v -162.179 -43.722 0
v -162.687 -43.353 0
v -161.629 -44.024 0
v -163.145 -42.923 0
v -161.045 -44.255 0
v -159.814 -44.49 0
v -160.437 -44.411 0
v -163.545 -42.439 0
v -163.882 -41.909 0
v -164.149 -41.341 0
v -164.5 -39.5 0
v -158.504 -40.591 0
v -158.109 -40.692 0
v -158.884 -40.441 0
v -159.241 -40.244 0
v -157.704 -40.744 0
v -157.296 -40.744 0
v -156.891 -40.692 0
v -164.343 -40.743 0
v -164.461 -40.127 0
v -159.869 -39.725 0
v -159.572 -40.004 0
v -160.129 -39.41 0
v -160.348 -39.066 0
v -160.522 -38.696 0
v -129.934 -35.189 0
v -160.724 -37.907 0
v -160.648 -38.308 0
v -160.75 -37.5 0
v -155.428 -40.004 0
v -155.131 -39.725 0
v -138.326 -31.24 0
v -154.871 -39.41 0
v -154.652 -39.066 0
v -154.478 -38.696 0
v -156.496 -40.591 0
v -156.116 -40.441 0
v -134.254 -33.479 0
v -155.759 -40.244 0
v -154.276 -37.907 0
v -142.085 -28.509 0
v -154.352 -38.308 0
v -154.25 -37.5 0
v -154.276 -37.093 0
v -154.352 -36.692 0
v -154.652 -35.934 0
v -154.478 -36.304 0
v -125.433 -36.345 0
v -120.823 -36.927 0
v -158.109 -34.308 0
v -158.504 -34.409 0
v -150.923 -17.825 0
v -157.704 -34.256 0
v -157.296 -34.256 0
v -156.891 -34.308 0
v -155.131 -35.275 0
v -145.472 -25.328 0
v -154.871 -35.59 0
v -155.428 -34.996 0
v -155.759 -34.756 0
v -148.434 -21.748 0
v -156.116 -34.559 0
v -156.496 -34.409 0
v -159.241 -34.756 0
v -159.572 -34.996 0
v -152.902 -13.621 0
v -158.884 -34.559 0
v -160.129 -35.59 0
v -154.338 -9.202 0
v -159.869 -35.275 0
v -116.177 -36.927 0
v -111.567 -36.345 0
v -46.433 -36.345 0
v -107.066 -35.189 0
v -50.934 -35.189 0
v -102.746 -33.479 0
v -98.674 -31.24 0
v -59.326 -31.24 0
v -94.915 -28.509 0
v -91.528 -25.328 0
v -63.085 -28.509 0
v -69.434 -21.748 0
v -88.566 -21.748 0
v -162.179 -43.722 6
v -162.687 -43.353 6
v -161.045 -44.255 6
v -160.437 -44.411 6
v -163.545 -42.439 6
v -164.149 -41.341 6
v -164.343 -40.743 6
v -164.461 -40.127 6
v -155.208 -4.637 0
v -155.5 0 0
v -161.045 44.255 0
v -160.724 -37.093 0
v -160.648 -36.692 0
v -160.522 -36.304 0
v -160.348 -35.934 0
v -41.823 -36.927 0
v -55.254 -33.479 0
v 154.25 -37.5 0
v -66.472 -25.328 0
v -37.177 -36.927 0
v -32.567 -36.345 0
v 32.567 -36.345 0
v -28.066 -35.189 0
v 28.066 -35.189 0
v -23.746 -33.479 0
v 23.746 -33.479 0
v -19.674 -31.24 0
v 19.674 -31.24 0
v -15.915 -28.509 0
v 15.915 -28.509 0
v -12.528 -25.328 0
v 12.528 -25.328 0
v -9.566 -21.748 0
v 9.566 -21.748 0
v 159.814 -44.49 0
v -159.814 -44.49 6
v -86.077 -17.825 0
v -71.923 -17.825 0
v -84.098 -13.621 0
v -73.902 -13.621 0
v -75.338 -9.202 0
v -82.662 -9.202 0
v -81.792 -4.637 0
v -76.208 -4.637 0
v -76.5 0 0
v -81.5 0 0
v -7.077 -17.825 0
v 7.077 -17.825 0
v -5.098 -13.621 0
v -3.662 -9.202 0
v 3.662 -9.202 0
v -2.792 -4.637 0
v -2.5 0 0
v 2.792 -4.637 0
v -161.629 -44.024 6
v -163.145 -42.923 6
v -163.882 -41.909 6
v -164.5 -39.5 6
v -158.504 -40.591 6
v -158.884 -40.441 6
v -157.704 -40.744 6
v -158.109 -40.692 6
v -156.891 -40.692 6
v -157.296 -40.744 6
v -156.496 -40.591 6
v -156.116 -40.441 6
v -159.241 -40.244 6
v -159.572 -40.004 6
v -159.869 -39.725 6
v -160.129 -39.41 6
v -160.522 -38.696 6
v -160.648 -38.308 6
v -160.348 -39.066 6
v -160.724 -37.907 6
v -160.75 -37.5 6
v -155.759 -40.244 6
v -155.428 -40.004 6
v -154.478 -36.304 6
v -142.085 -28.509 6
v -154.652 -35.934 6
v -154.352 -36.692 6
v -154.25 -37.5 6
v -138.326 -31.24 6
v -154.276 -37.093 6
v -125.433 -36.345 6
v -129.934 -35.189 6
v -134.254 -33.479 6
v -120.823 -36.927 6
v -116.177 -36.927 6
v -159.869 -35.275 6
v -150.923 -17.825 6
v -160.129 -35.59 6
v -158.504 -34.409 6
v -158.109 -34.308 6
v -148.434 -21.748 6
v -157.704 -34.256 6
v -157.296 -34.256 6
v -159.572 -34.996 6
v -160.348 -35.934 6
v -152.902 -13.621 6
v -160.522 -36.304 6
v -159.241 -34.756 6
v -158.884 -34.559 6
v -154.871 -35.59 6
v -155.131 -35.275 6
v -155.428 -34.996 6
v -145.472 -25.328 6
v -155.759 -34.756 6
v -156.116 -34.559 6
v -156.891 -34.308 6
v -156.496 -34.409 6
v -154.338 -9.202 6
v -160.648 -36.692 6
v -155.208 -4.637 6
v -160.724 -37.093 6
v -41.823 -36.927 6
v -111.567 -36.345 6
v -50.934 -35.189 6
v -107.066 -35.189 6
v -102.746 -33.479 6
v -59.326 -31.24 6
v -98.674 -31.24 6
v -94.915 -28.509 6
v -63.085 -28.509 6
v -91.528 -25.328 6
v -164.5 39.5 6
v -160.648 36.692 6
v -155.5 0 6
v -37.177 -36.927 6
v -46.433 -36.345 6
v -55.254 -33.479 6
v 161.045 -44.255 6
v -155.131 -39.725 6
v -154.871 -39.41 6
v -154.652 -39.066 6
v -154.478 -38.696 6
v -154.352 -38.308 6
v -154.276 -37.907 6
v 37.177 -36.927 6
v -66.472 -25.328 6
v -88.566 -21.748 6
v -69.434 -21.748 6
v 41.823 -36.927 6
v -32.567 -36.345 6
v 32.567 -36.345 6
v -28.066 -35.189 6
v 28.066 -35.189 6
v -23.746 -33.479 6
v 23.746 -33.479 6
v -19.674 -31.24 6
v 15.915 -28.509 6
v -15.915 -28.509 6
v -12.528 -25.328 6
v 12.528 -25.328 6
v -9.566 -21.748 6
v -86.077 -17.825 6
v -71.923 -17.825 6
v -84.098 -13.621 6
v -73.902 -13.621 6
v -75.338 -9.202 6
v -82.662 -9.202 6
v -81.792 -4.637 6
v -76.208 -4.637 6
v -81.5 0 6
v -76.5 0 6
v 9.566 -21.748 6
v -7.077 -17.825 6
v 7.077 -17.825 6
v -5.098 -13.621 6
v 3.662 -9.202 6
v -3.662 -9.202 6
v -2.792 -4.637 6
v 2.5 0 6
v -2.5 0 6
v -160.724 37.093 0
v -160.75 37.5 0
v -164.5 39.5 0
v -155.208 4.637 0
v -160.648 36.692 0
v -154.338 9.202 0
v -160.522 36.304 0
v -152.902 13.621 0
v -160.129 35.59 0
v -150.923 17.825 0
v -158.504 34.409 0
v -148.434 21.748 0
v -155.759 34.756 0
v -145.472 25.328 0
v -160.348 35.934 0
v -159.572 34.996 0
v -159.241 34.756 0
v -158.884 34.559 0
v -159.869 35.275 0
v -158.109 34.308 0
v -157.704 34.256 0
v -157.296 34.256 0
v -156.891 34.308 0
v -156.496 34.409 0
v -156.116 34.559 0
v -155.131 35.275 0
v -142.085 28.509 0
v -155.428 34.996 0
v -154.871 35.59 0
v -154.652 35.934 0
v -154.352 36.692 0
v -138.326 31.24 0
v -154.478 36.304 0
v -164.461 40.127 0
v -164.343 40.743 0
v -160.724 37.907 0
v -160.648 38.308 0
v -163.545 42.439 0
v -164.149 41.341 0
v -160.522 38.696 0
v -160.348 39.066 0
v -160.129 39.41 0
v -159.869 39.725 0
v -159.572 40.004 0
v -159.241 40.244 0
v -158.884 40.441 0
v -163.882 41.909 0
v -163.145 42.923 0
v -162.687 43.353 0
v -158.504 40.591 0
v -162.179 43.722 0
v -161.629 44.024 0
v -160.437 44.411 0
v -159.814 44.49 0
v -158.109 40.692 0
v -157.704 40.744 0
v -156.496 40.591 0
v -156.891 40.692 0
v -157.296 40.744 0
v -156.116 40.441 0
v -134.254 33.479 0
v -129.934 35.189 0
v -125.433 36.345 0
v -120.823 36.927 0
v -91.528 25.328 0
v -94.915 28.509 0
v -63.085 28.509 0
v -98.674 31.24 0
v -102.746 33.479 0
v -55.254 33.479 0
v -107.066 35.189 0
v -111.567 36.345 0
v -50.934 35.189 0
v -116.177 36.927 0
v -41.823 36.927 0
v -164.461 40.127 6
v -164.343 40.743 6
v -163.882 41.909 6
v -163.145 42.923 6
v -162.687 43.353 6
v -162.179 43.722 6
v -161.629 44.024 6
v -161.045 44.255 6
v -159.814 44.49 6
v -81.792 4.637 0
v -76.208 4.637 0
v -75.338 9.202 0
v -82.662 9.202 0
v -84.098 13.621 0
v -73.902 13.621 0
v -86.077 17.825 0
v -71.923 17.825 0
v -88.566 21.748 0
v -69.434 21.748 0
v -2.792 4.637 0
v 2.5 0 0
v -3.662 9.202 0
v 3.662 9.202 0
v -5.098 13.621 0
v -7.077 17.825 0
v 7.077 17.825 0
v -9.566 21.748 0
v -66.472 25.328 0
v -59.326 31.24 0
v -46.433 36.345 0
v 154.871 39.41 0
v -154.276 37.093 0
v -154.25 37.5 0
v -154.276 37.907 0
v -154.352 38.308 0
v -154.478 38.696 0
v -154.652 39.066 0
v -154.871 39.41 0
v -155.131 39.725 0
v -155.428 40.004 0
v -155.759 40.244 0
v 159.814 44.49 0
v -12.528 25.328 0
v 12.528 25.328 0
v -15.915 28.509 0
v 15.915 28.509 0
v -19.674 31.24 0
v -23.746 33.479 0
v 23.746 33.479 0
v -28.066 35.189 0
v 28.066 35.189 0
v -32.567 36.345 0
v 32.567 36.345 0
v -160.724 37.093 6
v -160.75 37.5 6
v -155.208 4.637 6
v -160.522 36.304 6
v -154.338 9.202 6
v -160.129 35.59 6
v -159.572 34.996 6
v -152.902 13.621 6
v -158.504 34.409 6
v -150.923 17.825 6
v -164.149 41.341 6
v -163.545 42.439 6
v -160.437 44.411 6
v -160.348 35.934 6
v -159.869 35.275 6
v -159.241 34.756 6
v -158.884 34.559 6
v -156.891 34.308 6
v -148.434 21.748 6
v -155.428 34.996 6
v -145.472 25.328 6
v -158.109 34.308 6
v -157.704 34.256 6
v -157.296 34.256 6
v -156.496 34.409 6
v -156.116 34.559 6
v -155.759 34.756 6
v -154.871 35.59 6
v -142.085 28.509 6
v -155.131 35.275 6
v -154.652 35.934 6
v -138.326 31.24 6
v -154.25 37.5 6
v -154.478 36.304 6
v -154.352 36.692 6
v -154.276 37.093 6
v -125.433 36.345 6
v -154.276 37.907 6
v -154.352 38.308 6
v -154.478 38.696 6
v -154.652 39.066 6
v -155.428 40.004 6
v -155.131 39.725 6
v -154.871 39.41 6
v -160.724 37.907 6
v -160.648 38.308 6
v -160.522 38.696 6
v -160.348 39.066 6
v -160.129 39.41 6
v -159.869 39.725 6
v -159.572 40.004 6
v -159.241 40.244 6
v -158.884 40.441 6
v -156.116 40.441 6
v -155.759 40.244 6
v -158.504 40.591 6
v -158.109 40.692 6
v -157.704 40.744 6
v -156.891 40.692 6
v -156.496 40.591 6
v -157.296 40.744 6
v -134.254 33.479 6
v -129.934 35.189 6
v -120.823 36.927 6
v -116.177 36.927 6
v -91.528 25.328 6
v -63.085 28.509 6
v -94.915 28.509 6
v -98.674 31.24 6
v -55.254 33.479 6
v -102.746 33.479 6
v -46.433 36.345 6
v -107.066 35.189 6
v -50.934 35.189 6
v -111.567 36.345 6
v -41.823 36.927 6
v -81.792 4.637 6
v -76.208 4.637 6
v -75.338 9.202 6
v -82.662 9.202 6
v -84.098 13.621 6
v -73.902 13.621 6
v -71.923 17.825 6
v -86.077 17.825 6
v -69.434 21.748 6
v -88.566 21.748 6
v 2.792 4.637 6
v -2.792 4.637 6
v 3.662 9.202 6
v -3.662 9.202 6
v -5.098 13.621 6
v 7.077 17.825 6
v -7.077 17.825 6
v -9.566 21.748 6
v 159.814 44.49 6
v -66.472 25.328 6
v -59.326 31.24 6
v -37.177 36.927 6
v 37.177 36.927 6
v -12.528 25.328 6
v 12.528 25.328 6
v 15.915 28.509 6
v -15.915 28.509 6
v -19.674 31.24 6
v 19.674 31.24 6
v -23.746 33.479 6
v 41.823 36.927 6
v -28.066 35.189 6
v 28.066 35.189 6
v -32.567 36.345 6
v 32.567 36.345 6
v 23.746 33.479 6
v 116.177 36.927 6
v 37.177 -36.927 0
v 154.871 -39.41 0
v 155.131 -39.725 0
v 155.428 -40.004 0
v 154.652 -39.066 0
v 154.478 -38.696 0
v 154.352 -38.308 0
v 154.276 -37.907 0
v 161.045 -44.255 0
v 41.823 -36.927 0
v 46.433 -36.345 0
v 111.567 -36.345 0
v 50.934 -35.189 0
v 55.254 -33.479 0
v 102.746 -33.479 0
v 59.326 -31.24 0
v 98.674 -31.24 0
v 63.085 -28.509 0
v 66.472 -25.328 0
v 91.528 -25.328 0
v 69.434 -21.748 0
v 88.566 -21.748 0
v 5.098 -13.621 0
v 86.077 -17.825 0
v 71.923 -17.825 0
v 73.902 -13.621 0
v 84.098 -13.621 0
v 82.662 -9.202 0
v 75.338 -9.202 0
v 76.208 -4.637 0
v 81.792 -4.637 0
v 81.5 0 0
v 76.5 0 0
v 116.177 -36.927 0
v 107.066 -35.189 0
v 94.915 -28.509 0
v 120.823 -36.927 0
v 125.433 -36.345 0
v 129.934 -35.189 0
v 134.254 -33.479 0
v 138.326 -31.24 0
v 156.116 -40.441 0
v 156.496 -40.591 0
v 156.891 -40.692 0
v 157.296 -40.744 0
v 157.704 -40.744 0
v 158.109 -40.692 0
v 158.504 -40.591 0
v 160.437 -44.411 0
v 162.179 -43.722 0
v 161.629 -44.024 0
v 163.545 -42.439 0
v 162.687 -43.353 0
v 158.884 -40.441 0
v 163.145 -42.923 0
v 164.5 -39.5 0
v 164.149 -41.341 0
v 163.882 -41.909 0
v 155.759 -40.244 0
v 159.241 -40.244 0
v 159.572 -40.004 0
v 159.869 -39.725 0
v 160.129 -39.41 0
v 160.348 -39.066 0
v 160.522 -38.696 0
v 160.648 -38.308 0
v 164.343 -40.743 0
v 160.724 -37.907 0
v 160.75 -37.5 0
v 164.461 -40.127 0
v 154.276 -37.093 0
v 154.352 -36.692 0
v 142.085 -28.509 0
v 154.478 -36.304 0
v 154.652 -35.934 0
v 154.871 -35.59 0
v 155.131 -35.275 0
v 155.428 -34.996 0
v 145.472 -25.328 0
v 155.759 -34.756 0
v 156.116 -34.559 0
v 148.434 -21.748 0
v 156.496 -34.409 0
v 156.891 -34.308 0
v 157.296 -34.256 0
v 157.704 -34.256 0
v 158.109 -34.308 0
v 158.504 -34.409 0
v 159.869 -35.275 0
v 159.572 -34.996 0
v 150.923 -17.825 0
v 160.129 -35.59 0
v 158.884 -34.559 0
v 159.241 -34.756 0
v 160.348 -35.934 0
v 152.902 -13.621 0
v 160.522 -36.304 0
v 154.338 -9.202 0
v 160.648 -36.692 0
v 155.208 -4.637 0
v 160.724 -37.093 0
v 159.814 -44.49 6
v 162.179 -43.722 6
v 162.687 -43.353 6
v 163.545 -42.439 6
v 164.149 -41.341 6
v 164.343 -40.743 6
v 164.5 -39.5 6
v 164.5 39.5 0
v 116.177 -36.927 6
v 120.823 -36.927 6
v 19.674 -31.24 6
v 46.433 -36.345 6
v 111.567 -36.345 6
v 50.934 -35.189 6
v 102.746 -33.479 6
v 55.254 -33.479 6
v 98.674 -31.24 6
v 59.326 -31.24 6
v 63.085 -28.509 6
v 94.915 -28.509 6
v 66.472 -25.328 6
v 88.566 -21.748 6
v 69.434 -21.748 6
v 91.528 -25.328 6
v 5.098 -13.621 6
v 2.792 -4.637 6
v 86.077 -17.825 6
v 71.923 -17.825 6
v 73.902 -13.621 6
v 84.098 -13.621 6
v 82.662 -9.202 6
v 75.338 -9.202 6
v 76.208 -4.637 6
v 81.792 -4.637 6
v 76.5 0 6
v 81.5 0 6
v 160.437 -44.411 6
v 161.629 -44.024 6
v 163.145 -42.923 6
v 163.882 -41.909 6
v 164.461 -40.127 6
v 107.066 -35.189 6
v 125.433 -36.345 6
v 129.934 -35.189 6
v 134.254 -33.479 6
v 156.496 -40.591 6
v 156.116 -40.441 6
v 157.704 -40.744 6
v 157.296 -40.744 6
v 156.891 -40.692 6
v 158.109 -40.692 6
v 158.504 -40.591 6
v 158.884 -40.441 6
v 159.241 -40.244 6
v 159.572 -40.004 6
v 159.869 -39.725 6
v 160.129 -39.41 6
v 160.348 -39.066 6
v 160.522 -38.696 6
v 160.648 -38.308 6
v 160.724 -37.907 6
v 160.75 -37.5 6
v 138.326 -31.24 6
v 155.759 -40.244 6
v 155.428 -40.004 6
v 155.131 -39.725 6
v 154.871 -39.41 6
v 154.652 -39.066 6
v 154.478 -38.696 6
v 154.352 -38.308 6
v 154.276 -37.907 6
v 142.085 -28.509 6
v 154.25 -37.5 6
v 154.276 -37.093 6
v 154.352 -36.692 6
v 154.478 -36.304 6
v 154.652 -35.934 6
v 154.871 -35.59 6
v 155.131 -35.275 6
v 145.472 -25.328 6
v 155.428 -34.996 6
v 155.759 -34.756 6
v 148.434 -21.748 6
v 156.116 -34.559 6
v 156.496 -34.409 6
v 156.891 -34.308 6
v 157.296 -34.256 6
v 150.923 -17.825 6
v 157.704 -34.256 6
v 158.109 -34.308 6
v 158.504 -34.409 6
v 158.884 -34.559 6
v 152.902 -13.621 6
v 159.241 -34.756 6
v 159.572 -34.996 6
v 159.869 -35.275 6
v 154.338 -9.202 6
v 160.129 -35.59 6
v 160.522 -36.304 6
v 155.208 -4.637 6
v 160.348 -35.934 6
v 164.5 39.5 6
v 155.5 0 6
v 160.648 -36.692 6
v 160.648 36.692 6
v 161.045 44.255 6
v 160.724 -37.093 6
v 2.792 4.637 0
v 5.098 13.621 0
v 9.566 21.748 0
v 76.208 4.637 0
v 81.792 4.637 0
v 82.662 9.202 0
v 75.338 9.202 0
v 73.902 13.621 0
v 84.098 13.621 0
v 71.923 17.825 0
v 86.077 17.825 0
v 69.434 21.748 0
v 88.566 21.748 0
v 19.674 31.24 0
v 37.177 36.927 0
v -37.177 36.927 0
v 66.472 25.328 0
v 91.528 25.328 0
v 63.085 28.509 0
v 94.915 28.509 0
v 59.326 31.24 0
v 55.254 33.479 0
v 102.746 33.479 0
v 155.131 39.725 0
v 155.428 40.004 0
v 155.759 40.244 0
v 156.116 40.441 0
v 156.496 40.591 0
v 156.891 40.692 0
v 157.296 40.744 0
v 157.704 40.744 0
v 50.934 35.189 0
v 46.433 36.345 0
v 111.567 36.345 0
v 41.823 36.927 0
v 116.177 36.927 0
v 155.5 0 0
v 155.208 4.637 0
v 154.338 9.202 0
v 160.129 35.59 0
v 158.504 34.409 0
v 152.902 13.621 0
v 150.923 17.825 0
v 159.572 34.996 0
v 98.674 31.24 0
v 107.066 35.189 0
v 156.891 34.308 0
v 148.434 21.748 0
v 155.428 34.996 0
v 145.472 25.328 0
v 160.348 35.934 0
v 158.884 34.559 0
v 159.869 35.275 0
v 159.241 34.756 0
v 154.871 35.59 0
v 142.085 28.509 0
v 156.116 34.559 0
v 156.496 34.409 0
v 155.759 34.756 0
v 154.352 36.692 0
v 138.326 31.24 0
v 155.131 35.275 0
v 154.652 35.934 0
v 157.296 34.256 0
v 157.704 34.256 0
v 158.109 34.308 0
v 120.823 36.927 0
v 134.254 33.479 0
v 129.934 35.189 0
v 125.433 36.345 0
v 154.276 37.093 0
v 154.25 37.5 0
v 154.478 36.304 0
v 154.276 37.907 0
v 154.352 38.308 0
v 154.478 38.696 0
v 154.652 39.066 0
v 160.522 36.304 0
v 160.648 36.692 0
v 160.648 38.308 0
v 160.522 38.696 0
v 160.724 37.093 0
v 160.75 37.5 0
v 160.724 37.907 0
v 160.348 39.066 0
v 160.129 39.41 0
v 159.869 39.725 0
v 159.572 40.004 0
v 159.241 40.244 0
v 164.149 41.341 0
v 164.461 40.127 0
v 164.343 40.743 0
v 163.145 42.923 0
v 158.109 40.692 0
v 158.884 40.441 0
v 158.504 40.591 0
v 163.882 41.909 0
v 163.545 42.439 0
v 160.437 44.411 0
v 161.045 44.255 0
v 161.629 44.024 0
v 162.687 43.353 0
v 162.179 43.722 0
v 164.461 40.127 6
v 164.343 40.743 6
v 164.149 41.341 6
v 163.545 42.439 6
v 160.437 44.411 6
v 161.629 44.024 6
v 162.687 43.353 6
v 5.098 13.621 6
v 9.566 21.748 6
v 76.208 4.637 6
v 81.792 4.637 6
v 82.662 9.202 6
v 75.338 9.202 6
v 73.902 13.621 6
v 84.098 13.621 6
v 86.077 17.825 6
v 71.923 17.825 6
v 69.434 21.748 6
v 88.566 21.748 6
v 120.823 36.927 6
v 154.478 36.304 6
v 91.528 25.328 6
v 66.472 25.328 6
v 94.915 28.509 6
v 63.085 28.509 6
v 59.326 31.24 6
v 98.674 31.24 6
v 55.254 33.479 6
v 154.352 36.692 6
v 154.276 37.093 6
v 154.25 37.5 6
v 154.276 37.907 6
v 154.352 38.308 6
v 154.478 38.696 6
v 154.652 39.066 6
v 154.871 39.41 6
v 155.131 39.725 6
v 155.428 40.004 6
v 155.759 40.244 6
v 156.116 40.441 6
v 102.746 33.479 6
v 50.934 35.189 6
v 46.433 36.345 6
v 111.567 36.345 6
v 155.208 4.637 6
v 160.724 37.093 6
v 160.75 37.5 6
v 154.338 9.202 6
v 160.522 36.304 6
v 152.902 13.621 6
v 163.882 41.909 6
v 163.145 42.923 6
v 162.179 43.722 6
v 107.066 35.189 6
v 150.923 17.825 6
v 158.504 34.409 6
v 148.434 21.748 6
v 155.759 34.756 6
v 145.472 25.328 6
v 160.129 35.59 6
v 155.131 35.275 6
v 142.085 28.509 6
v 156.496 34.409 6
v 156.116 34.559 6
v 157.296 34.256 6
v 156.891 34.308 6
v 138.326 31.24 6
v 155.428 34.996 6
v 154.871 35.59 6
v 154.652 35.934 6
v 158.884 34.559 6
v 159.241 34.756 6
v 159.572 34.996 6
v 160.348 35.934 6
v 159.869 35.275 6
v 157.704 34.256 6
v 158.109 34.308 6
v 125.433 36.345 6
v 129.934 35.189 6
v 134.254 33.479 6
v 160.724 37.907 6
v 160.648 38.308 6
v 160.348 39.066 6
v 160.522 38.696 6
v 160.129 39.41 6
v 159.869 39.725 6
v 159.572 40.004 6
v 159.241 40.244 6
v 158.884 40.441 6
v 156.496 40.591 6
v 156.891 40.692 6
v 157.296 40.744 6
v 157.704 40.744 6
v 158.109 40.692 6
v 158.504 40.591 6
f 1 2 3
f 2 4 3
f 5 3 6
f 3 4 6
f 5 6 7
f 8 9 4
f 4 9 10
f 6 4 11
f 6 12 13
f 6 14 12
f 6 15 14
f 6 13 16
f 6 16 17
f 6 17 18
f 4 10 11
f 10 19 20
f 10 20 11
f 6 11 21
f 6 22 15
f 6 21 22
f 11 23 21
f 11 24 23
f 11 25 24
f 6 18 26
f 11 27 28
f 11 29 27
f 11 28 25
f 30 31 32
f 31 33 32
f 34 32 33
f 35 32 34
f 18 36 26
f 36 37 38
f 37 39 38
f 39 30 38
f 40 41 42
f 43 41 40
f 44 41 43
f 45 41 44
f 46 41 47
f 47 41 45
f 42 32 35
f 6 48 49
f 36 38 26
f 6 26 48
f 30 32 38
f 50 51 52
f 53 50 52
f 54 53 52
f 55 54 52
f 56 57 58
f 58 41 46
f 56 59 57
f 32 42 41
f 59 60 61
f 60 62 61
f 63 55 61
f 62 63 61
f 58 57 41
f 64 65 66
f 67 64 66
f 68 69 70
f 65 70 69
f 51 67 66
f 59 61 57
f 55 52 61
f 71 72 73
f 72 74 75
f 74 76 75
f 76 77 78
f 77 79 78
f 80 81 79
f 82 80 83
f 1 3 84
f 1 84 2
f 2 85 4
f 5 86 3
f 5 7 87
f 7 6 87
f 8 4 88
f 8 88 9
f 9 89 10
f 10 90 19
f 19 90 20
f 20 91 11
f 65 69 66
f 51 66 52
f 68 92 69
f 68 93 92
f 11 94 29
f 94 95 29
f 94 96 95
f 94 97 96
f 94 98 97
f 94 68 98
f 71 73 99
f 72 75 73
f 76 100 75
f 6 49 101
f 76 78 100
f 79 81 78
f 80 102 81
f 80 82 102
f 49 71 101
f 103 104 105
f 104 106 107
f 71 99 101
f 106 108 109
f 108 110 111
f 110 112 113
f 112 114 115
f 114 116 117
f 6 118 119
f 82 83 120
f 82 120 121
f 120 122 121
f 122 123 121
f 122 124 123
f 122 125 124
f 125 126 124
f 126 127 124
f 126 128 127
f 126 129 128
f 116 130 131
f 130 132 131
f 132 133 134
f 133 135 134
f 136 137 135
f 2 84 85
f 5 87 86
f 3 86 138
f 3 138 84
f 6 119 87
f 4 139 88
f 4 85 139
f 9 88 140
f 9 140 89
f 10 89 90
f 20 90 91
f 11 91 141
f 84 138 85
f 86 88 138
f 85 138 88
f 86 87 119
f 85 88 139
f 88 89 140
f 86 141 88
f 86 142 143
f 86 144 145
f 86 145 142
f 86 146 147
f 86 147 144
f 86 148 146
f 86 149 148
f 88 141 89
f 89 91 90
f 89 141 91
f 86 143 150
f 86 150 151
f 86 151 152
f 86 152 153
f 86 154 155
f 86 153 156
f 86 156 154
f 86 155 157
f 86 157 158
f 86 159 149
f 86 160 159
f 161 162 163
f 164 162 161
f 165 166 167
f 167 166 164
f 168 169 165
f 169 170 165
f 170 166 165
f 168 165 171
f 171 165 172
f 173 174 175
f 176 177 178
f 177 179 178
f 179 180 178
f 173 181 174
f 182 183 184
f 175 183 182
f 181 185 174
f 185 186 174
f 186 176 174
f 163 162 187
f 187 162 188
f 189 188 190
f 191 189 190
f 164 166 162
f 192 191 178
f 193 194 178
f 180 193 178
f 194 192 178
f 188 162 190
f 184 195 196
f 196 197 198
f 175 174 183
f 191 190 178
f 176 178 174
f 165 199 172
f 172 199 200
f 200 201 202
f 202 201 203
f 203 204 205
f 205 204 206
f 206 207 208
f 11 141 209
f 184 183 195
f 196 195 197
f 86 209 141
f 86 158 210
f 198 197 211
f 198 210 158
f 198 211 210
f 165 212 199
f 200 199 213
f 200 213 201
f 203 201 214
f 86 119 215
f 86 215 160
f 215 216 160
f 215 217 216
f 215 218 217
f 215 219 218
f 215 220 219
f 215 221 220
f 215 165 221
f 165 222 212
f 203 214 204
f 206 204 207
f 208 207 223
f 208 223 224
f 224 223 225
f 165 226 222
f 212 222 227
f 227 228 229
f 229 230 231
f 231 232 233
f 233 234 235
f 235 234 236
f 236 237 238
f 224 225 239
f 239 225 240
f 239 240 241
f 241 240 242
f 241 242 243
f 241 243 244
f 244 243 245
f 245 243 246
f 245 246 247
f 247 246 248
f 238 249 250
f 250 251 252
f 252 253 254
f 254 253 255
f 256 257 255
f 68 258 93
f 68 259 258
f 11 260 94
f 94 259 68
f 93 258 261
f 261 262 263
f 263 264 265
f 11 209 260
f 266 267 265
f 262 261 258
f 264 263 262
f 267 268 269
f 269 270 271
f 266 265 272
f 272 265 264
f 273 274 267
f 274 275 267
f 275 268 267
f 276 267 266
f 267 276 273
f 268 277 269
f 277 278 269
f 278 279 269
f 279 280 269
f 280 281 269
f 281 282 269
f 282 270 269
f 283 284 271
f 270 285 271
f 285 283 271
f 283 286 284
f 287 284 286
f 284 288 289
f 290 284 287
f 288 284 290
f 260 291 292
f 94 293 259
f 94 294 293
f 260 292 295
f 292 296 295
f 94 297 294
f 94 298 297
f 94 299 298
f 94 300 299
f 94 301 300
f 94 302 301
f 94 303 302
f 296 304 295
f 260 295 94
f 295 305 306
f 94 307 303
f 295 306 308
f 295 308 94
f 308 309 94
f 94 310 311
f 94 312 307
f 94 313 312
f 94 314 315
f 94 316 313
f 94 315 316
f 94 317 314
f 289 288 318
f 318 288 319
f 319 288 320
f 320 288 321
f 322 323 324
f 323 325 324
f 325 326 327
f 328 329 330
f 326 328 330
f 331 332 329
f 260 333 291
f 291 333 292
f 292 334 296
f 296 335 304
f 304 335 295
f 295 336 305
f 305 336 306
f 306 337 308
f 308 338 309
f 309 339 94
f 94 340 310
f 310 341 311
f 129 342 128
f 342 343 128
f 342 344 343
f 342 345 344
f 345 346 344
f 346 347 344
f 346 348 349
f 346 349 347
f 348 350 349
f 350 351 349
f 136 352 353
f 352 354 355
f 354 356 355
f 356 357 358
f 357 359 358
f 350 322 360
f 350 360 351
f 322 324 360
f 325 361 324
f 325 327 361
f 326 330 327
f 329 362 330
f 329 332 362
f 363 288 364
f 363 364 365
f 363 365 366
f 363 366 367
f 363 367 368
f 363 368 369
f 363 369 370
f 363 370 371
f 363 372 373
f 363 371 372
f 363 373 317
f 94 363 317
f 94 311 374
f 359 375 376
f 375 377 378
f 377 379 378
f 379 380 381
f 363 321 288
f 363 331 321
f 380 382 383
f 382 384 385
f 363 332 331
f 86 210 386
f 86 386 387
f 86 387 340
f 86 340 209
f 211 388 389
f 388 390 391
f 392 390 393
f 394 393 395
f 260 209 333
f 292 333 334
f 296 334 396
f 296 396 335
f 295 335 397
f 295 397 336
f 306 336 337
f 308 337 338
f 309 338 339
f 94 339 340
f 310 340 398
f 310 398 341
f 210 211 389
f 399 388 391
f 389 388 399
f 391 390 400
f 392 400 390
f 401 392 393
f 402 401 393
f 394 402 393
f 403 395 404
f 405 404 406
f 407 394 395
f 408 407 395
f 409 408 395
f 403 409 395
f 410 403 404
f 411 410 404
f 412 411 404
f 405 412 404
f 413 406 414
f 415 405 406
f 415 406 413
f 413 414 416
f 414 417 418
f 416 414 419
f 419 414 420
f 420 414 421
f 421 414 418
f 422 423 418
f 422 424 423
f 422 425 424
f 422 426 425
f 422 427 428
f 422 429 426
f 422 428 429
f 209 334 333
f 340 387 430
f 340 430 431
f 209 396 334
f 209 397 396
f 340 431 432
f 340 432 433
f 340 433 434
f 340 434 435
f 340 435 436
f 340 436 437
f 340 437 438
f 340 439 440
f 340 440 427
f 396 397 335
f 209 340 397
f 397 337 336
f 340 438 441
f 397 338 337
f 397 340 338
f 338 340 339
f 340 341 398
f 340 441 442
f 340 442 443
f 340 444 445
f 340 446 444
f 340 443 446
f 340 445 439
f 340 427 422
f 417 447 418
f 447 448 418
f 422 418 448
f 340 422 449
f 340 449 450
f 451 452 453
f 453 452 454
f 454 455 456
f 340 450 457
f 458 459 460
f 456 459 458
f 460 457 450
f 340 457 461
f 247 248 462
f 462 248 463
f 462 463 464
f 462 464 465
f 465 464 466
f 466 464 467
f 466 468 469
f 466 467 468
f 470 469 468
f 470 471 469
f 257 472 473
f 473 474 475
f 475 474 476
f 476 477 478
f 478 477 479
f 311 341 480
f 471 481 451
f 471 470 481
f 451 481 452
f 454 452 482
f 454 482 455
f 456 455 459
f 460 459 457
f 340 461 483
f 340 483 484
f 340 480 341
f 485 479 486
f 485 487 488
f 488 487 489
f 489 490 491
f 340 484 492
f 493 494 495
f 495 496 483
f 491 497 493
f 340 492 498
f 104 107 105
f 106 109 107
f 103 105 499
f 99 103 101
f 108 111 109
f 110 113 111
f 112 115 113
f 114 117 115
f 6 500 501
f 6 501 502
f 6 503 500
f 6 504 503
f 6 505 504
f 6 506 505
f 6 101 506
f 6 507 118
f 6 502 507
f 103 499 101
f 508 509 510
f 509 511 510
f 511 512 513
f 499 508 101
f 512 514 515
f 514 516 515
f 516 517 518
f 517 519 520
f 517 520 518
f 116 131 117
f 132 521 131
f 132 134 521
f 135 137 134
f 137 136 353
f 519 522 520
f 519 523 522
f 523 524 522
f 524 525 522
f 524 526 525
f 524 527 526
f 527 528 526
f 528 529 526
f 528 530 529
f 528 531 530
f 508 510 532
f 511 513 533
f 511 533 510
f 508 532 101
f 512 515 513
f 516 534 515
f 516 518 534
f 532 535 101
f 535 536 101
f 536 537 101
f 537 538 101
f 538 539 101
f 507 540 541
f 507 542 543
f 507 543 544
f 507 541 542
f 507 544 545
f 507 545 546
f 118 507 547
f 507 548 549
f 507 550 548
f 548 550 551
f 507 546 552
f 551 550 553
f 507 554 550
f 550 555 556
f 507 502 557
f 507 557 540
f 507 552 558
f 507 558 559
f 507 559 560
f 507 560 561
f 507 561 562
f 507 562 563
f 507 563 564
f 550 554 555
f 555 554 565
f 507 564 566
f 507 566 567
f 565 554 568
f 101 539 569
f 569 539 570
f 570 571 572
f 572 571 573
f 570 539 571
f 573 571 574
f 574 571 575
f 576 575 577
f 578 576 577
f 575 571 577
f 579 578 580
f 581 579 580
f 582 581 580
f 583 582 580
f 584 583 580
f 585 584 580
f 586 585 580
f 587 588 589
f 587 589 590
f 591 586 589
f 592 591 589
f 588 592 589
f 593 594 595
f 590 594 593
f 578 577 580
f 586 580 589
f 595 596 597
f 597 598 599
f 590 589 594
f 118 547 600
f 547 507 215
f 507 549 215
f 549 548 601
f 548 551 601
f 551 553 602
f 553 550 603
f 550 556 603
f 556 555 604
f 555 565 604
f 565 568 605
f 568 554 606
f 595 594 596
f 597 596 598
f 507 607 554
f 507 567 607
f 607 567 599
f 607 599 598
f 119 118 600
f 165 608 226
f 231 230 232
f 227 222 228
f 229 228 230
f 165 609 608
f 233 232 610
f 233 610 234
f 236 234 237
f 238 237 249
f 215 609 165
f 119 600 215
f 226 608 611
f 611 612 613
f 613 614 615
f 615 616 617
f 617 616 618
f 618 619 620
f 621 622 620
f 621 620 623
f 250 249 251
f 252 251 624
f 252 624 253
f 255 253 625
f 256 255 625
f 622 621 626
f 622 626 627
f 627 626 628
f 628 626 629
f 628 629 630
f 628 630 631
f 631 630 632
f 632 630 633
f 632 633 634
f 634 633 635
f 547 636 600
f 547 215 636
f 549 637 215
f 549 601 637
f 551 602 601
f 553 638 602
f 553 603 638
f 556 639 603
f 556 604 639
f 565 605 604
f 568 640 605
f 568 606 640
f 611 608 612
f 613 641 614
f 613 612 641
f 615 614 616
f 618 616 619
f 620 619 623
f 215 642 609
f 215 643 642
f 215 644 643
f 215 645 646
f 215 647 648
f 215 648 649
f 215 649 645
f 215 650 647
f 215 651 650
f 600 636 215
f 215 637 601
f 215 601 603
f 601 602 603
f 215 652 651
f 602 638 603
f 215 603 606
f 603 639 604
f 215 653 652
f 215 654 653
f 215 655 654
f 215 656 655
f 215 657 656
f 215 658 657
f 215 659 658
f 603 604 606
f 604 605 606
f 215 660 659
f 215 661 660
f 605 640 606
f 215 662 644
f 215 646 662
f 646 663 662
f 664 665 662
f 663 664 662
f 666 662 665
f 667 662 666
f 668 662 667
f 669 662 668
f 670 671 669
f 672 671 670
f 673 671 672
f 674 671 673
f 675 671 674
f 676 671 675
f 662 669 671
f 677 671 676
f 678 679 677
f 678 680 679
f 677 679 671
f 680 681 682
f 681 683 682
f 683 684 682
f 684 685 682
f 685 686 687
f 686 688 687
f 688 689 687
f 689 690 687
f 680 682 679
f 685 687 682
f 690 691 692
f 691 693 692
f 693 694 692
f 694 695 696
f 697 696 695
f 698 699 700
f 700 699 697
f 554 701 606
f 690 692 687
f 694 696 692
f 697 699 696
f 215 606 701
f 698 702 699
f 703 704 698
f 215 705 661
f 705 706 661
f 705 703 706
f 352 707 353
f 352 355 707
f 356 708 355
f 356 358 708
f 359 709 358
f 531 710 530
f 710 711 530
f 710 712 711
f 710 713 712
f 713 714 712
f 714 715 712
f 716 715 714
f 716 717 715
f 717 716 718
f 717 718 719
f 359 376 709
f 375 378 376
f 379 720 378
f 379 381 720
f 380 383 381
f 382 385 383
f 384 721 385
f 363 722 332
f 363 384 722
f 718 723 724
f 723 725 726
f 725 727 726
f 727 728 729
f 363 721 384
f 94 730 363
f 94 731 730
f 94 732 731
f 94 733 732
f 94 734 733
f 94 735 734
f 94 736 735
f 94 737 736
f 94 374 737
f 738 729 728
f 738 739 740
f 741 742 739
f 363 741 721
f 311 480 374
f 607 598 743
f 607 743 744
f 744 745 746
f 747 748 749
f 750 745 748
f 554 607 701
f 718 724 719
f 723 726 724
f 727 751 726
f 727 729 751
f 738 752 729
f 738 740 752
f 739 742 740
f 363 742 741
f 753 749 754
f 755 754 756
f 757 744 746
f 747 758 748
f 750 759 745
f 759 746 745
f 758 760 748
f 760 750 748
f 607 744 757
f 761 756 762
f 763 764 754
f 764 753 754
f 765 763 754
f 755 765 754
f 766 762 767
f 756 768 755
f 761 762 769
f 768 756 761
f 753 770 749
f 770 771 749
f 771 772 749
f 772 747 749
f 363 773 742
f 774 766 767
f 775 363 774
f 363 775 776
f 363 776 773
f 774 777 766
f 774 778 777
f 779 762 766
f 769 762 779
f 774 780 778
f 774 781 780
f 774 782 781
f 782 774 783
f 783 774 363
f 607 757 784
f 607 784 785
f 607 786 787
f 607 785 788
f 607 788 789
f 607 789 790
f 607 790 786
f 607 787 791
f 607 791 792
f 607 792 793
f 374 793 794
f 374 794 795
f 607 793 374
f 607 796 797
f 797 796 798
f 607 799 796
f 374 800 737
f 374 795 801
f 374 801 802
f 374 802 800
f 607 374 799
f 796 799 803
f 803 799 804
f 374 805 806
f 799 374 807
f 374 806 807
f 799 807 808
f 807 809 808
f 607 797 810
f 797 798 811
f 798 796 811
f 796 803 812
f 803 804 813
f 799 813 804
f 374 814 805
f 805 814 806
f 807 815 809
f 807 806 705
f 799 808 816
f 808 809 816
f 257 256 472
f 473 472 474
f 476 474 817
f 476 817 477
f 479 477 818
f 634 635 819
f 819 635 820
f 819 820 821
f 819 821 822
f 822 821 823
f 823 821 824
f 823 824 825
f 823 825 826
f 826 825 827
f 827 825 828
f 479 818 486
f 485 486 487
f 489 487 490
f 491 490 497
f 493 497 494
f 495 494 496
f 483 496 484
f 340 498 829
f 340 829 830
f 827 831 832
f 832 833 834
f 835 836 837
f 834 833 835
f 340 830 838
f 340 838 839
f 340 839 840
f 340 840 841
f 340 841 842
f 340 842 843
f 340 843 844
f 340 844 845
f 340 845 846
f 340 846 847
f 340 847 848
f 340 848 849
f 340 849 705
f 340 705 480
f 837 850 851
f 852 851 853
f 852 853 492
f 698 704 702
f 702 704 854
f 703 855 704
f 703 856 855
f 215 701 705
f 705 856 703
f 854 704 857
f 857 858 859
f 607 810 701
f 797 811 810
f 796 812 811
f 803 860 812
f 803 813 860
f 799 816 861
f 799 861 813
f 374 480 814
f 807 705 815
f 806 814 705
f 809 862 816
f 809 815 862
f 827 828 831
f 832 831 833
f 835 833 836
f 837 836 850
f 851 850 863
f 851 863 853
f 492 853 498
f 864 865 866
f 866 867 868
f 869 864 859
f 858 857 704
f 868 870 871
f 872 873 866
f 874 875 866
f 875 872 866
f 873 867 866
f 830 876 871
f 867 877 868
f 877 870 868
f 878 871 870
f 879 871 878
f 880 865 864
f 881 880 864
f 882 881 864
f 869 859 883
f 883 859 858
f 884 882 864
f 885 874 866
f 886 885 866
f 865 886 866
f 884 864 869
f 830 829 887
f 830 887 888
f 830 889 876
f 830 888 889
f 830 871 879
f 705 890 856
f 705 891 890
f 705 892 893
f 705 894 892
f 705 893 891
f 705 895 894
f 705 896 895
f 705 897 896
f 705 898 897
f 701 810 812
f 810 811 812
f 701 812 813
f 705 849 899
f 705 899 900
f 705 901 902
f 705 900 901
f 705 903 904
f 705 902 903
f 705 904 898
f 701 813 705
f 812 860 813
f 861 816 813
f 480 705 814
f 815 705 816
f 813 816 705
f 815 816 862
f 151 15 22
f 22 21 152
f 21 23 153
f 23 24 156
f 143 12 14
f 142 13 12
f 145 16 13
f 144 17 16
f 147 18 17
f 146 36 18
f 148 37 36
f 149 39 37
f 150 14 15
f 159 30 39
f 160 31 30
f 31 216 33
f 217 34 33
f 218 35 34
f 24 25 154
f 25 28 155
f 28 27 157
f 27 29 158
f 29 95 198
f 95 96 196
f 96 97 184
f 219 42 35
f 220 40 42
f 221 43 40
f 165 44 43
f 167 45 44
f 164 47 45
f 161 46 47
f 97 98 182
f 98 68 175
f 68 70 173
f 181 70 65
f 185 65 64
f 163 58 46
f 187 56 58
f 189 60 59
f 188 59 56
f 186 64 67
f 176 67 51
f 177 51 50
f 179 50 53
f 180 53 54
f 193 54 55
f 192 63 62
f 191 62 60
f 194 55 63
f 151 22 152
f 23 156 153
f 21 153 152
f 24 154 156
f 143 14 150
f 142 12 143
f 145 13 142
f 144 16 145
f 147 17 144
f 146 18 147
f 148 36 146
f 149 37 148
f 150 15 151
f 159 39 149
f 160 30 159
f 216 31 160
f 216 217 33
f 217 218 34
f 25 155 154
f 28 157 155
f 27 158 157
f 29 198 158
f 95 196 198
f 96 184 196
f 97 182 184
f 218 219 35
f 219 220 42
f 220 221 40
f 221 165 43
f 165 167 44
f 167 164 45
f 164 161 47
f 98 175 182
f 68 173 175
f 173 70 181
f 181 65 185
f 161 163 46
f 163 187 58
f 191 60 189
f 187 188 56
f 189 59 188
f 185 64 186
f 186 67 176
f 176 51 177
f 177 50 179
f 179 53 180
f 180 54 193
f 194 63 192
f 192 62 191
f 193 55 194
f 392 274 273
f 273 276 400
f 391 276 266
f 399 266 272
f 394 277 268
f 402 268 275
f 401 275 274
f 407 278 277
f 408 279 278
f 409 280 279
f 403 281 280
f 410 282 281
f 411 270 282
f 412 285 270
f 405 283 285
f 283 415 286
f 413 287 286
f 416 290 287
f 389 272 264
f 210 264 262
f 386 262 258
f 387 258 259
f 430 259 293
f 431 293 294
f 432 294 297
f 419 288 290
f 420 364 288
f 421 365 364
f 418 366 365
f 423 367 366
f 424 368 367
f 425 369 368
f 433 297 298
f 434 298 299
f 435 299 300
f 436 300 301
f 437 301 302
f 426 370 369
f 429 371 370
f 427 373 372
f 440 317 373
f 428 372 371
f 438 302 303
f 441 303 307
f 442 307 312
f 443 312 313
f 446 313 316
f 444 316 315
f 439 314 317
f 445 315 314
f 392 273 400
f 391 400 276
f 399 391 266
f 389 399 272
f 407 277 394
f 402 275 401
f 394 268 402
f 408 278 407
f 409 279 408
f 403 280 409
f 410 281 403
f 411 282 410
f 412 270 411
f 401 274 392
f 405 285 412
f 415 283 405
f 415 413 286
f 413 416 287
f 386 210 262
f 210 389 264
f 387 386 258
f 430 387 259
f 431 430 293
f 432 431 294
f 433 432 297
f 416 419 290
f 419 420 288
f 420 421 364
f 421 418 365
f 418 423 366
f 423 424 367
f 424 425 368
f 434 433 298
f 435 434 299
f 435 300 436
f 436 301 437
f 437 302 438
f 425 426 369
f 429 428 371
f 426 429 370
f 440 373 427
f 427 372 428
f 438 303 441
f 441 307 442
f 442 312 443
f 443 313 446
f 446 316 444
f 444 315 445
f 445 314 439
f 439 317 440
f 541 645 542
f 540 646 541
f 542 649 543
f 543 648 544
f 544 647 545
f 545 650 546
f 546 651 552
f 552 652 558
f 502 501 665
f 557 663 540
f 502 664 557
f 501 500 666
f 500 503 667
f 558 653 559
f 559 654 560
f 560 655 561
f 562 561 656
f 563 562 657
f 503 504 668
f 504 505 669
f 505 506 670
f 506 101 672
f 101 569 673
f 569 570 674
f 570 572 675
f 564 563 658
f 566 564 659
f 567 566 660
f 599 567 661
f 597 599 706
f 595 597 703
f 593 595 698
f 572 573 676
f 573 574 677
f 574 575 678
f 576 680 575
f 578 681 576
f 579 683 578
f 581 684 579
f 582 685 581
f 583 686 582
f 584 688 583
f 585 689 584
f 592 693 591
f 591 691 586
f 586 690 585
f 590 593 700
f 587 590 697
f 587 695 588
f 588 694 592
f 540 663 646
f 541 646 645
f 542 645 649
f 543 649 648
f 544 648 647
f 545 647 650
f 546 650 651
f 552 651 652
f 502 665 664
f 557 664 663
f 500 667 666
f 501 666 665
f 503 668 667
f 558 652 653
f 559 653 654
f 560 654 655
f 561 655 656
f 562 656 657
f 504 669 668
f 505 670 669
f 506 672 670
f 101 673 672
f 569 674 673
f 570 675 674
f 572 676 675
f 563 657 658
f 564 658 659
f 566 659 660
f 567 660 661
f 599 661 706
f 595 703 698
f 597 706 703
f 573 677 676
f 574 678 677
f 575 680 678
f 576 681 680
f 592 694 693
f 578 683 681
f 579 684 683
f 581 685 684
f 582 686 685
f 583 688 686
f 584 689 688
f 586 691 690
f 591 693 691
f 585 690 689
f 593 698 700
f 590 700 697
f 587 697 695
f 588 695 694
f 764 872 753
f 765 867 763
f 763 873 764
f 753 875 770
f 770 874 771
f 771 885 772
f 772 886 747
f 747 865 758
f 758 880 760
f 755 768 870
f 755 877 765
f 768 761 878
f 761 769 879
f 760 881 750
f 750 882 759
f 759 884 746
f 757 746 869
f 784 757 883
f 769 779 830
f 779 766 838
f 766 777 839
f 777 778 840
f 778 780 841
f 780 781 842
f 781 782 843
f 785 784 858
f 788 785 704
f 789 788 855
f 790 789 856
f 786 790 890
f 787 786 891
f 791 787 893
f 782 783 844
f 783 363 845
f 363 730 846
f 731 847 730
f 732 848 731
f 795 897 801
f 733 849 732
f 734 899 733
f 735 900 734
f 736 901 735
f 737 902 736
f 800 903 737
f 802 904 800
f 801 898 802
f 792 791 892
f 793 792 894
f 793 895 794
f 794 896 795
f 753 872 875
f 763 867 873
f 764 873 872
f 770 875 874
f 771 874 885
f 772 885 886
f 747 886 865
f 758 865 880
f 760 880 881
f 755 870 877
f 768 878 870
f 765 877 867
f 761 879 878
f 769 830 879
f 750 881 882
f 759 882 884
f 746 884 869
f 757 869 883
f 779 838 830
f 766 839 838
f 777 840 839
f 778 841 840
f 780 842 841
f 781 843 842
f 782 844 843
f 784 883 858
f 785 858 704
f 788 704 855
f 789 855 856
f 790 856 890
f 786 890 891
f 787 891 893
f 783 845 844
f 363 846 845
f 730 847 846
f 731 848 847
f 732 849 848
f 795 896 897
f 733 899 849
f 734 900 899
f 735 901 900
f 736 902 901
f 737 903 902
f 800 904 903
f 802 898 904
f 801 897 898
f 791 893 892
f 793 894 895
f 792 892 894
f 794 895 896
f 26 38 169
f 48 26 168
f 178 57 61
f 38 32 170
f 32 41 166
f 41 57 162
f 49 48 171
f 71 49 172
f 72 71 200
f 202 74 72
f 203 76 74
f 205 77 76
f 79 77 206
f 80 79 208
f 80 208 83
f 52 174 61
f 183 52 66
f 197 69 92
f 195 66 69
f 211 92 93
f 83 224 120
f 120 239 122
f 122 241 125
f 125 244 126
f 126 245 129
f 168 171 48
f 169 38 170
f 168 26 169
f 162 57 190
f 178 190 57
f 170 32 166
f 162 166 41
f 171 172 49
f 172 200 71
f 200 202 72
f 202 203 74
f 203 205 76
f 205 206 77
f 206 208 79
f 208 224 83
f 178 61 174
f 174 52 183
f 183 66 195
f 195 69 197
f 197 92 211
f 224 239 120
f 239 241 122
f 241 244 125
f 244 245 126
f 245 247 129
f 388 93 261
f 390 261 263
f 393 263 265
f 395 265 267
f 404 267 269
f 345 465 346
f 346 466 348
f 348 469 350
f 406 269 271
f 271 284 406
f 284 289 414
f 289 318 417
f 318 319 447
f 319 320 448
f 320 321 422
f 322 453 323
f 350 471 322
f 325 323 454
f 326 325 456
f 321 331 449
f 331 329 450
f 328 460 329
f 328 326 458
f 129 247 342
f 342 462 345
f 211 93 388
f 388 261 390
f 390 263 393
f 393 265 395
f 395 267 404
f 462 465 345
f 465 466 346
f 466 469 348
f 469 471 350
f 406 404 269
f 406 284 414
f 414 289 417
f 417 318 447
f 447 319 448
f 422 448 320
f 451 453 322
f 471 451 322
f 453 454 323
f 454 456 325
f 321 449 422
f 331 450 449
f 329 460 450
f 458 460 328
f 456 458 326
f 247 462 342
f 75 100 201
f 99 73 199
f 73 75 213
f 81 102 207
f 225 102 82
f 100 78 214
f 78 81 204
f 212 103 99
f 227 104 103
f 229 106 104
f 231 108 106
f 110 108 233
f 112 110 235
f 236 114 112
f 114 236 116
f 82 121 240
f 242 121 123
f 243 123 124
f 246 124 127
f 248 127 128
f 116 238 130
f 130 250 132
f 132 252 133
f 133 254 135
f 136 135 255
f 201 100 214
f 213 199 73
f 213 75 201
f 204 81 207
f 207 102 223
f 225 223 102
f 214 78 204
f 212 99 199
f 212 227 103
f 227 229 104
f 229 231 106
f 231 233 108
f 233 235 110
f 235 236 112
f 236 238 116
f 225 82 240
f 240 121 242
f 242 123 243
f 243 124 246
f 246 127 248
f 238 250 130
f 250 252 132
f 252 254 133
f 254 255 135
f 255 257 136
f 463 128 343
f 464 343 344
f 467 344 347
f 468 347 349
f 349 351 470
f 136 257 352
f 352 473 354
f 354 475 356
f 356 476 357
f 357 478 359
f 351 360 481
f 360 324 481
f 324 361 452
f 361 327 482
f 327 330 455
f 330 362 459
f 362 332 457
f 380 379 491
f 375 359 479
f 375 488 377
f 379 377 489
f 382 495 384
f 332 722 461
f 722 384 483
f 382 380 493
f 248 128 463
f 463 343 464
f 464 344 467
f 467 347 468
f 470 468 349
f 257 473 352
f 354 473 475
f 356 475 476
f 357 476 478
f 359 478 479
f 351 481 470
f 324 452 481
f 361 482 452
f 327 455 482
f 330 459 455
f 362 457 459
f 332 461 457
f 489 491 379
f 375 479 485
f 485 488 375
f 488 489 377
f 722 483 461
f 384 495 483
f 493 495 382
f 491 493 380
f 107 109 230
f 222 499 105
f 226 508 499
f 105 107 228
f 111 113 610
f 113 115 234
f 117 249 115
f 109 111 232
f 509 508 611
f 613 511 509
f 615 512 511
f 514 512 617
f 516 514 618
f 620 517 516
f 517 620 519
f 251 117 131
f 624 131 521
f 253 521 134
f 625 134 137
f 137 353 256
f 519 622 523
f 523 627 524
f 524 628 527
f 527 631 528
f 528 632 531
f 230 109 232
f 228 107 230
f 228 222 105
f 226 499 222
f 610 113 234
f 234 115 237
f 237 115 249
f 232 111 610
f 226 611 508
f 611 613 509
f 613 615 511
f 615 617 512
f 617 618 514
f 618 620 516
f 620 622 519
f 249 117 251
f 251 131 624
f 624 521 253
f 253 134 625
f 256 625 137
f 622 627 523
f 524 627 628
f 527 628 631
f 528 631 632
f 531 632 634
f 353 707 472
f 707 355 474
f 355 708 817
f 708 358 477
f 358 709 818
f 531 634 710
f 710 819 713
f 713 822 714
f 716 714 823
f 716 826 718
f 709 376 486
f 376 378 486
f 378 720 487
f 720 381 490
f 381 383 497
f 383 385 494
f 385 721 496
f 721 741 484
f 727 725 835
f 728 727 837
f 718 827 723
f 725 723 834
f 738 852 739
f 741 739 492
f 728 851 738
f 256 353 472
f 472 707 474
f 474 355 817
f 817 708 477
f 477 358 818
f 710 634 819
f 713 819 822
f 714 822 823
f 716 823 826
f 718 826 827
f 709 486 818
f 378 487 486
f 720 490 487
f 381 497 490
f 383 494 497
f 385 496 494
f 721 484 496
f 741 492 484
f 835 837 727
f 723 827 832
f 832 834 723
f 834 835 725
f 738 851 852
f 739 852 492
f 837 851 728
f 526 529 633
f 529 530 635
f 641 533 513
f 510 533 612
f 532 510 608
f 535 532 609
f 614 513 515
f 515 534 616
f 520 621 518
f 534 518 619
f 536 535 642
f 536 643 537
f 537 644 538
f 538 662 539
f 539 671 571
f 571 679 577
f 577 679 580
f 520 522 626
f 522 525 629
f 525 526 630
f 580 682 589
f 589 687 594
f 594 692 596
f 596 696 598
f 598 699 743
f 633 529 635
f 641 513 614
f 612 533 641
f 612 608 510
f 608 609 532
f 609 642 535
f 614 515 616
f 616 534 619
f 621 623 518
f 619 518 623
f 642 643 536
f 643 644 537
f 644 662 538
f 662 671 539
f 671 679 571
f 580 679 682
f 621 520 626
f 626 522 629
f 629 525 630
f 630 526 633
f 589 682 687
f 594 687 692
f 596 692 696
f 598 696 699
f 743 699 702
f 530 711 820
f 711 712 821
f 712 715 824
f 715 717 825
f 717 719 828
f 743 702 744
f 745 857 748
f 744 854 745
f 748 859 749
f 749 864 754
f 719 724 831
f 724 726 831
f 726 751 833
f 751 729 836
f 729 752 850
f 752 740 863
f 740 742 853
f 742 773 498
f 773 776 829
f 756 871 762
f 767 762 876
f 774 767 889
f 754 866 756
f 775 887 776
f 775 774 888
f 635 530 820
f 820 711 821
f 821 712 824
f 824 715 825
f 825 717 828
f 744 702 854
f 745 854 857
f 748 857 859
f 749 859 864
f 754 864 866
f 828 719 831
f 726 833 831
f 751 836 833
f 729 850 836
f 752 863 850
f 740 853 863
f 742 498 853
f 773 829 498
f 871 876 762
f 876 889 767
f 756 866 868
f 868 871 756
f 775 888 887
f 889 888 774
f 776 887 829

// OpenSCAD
$fn = 50;

difference() {
	union() {
		hull() {
			translate(v = [-159.5, 39.5, 0]) {
				cylinder(h = 6, r = 5);
			}
			translate(v = [159.5, 39.5, 0]) {
				cylinder(h = 6, r = 5);
			}
			translate(v = [-159.5, -39.5, 0]) {
				cylinder(h = 6, r = 5);
			}
			translate(v = [159.5, -39.5, 0]) {
				cylinder(h = 6, r = 5);
			}
		}
	}
	union() {
		translate(v = [-157.5, -37.5, -100.0]) {
			cylinder(h = 200, r = 3.25);
		}
		translate(v = [-157.5, 37.5, -100.0]) {
			cylinder(h = 200, r = 3.25);
		}
		translate(v = [157.5, -37.5, -100.0]) {
			cylinder(h = 200, r = 3.25);
		}
		translate(v = [157.5, 37.5, -100.0]) {
			cylinder(h = 200, r = 3.25);
		}
		translate(v = [-157.5, -37.5, -100.0]) {
			cylinder(h = 200, r = 1.8);
		}
		translate(v = [-157.5, 37.5, -100.0]) {
			cylinder(h = 200, r = 1.8);
		}
		translate(v = [157.5, -37.5, -100.0]) {
			cylinder(h = 200, r = 1.8);
		}
		translate(v = [157.5, 37.5, -100.0]) {
			cylinder(h = 200, r = 1.8);
		}
		translate(v = [-118.5, 0, 0.0]) {
			cylinder(h = 6, r = 37.0);
		}
		translate(v = [-39.5, 0, 0.0]) {
			cylinder(h = 6, r = 37.0);
		}
		translate(v = [39.5, 0, 0.0]) {
			cylinder(h = 6, r = 37.0);
		}
		translate(v = [118.5, 0, 0.0]) {
			cylinder(h = 6, r = 37.0);
		}
	}
}
